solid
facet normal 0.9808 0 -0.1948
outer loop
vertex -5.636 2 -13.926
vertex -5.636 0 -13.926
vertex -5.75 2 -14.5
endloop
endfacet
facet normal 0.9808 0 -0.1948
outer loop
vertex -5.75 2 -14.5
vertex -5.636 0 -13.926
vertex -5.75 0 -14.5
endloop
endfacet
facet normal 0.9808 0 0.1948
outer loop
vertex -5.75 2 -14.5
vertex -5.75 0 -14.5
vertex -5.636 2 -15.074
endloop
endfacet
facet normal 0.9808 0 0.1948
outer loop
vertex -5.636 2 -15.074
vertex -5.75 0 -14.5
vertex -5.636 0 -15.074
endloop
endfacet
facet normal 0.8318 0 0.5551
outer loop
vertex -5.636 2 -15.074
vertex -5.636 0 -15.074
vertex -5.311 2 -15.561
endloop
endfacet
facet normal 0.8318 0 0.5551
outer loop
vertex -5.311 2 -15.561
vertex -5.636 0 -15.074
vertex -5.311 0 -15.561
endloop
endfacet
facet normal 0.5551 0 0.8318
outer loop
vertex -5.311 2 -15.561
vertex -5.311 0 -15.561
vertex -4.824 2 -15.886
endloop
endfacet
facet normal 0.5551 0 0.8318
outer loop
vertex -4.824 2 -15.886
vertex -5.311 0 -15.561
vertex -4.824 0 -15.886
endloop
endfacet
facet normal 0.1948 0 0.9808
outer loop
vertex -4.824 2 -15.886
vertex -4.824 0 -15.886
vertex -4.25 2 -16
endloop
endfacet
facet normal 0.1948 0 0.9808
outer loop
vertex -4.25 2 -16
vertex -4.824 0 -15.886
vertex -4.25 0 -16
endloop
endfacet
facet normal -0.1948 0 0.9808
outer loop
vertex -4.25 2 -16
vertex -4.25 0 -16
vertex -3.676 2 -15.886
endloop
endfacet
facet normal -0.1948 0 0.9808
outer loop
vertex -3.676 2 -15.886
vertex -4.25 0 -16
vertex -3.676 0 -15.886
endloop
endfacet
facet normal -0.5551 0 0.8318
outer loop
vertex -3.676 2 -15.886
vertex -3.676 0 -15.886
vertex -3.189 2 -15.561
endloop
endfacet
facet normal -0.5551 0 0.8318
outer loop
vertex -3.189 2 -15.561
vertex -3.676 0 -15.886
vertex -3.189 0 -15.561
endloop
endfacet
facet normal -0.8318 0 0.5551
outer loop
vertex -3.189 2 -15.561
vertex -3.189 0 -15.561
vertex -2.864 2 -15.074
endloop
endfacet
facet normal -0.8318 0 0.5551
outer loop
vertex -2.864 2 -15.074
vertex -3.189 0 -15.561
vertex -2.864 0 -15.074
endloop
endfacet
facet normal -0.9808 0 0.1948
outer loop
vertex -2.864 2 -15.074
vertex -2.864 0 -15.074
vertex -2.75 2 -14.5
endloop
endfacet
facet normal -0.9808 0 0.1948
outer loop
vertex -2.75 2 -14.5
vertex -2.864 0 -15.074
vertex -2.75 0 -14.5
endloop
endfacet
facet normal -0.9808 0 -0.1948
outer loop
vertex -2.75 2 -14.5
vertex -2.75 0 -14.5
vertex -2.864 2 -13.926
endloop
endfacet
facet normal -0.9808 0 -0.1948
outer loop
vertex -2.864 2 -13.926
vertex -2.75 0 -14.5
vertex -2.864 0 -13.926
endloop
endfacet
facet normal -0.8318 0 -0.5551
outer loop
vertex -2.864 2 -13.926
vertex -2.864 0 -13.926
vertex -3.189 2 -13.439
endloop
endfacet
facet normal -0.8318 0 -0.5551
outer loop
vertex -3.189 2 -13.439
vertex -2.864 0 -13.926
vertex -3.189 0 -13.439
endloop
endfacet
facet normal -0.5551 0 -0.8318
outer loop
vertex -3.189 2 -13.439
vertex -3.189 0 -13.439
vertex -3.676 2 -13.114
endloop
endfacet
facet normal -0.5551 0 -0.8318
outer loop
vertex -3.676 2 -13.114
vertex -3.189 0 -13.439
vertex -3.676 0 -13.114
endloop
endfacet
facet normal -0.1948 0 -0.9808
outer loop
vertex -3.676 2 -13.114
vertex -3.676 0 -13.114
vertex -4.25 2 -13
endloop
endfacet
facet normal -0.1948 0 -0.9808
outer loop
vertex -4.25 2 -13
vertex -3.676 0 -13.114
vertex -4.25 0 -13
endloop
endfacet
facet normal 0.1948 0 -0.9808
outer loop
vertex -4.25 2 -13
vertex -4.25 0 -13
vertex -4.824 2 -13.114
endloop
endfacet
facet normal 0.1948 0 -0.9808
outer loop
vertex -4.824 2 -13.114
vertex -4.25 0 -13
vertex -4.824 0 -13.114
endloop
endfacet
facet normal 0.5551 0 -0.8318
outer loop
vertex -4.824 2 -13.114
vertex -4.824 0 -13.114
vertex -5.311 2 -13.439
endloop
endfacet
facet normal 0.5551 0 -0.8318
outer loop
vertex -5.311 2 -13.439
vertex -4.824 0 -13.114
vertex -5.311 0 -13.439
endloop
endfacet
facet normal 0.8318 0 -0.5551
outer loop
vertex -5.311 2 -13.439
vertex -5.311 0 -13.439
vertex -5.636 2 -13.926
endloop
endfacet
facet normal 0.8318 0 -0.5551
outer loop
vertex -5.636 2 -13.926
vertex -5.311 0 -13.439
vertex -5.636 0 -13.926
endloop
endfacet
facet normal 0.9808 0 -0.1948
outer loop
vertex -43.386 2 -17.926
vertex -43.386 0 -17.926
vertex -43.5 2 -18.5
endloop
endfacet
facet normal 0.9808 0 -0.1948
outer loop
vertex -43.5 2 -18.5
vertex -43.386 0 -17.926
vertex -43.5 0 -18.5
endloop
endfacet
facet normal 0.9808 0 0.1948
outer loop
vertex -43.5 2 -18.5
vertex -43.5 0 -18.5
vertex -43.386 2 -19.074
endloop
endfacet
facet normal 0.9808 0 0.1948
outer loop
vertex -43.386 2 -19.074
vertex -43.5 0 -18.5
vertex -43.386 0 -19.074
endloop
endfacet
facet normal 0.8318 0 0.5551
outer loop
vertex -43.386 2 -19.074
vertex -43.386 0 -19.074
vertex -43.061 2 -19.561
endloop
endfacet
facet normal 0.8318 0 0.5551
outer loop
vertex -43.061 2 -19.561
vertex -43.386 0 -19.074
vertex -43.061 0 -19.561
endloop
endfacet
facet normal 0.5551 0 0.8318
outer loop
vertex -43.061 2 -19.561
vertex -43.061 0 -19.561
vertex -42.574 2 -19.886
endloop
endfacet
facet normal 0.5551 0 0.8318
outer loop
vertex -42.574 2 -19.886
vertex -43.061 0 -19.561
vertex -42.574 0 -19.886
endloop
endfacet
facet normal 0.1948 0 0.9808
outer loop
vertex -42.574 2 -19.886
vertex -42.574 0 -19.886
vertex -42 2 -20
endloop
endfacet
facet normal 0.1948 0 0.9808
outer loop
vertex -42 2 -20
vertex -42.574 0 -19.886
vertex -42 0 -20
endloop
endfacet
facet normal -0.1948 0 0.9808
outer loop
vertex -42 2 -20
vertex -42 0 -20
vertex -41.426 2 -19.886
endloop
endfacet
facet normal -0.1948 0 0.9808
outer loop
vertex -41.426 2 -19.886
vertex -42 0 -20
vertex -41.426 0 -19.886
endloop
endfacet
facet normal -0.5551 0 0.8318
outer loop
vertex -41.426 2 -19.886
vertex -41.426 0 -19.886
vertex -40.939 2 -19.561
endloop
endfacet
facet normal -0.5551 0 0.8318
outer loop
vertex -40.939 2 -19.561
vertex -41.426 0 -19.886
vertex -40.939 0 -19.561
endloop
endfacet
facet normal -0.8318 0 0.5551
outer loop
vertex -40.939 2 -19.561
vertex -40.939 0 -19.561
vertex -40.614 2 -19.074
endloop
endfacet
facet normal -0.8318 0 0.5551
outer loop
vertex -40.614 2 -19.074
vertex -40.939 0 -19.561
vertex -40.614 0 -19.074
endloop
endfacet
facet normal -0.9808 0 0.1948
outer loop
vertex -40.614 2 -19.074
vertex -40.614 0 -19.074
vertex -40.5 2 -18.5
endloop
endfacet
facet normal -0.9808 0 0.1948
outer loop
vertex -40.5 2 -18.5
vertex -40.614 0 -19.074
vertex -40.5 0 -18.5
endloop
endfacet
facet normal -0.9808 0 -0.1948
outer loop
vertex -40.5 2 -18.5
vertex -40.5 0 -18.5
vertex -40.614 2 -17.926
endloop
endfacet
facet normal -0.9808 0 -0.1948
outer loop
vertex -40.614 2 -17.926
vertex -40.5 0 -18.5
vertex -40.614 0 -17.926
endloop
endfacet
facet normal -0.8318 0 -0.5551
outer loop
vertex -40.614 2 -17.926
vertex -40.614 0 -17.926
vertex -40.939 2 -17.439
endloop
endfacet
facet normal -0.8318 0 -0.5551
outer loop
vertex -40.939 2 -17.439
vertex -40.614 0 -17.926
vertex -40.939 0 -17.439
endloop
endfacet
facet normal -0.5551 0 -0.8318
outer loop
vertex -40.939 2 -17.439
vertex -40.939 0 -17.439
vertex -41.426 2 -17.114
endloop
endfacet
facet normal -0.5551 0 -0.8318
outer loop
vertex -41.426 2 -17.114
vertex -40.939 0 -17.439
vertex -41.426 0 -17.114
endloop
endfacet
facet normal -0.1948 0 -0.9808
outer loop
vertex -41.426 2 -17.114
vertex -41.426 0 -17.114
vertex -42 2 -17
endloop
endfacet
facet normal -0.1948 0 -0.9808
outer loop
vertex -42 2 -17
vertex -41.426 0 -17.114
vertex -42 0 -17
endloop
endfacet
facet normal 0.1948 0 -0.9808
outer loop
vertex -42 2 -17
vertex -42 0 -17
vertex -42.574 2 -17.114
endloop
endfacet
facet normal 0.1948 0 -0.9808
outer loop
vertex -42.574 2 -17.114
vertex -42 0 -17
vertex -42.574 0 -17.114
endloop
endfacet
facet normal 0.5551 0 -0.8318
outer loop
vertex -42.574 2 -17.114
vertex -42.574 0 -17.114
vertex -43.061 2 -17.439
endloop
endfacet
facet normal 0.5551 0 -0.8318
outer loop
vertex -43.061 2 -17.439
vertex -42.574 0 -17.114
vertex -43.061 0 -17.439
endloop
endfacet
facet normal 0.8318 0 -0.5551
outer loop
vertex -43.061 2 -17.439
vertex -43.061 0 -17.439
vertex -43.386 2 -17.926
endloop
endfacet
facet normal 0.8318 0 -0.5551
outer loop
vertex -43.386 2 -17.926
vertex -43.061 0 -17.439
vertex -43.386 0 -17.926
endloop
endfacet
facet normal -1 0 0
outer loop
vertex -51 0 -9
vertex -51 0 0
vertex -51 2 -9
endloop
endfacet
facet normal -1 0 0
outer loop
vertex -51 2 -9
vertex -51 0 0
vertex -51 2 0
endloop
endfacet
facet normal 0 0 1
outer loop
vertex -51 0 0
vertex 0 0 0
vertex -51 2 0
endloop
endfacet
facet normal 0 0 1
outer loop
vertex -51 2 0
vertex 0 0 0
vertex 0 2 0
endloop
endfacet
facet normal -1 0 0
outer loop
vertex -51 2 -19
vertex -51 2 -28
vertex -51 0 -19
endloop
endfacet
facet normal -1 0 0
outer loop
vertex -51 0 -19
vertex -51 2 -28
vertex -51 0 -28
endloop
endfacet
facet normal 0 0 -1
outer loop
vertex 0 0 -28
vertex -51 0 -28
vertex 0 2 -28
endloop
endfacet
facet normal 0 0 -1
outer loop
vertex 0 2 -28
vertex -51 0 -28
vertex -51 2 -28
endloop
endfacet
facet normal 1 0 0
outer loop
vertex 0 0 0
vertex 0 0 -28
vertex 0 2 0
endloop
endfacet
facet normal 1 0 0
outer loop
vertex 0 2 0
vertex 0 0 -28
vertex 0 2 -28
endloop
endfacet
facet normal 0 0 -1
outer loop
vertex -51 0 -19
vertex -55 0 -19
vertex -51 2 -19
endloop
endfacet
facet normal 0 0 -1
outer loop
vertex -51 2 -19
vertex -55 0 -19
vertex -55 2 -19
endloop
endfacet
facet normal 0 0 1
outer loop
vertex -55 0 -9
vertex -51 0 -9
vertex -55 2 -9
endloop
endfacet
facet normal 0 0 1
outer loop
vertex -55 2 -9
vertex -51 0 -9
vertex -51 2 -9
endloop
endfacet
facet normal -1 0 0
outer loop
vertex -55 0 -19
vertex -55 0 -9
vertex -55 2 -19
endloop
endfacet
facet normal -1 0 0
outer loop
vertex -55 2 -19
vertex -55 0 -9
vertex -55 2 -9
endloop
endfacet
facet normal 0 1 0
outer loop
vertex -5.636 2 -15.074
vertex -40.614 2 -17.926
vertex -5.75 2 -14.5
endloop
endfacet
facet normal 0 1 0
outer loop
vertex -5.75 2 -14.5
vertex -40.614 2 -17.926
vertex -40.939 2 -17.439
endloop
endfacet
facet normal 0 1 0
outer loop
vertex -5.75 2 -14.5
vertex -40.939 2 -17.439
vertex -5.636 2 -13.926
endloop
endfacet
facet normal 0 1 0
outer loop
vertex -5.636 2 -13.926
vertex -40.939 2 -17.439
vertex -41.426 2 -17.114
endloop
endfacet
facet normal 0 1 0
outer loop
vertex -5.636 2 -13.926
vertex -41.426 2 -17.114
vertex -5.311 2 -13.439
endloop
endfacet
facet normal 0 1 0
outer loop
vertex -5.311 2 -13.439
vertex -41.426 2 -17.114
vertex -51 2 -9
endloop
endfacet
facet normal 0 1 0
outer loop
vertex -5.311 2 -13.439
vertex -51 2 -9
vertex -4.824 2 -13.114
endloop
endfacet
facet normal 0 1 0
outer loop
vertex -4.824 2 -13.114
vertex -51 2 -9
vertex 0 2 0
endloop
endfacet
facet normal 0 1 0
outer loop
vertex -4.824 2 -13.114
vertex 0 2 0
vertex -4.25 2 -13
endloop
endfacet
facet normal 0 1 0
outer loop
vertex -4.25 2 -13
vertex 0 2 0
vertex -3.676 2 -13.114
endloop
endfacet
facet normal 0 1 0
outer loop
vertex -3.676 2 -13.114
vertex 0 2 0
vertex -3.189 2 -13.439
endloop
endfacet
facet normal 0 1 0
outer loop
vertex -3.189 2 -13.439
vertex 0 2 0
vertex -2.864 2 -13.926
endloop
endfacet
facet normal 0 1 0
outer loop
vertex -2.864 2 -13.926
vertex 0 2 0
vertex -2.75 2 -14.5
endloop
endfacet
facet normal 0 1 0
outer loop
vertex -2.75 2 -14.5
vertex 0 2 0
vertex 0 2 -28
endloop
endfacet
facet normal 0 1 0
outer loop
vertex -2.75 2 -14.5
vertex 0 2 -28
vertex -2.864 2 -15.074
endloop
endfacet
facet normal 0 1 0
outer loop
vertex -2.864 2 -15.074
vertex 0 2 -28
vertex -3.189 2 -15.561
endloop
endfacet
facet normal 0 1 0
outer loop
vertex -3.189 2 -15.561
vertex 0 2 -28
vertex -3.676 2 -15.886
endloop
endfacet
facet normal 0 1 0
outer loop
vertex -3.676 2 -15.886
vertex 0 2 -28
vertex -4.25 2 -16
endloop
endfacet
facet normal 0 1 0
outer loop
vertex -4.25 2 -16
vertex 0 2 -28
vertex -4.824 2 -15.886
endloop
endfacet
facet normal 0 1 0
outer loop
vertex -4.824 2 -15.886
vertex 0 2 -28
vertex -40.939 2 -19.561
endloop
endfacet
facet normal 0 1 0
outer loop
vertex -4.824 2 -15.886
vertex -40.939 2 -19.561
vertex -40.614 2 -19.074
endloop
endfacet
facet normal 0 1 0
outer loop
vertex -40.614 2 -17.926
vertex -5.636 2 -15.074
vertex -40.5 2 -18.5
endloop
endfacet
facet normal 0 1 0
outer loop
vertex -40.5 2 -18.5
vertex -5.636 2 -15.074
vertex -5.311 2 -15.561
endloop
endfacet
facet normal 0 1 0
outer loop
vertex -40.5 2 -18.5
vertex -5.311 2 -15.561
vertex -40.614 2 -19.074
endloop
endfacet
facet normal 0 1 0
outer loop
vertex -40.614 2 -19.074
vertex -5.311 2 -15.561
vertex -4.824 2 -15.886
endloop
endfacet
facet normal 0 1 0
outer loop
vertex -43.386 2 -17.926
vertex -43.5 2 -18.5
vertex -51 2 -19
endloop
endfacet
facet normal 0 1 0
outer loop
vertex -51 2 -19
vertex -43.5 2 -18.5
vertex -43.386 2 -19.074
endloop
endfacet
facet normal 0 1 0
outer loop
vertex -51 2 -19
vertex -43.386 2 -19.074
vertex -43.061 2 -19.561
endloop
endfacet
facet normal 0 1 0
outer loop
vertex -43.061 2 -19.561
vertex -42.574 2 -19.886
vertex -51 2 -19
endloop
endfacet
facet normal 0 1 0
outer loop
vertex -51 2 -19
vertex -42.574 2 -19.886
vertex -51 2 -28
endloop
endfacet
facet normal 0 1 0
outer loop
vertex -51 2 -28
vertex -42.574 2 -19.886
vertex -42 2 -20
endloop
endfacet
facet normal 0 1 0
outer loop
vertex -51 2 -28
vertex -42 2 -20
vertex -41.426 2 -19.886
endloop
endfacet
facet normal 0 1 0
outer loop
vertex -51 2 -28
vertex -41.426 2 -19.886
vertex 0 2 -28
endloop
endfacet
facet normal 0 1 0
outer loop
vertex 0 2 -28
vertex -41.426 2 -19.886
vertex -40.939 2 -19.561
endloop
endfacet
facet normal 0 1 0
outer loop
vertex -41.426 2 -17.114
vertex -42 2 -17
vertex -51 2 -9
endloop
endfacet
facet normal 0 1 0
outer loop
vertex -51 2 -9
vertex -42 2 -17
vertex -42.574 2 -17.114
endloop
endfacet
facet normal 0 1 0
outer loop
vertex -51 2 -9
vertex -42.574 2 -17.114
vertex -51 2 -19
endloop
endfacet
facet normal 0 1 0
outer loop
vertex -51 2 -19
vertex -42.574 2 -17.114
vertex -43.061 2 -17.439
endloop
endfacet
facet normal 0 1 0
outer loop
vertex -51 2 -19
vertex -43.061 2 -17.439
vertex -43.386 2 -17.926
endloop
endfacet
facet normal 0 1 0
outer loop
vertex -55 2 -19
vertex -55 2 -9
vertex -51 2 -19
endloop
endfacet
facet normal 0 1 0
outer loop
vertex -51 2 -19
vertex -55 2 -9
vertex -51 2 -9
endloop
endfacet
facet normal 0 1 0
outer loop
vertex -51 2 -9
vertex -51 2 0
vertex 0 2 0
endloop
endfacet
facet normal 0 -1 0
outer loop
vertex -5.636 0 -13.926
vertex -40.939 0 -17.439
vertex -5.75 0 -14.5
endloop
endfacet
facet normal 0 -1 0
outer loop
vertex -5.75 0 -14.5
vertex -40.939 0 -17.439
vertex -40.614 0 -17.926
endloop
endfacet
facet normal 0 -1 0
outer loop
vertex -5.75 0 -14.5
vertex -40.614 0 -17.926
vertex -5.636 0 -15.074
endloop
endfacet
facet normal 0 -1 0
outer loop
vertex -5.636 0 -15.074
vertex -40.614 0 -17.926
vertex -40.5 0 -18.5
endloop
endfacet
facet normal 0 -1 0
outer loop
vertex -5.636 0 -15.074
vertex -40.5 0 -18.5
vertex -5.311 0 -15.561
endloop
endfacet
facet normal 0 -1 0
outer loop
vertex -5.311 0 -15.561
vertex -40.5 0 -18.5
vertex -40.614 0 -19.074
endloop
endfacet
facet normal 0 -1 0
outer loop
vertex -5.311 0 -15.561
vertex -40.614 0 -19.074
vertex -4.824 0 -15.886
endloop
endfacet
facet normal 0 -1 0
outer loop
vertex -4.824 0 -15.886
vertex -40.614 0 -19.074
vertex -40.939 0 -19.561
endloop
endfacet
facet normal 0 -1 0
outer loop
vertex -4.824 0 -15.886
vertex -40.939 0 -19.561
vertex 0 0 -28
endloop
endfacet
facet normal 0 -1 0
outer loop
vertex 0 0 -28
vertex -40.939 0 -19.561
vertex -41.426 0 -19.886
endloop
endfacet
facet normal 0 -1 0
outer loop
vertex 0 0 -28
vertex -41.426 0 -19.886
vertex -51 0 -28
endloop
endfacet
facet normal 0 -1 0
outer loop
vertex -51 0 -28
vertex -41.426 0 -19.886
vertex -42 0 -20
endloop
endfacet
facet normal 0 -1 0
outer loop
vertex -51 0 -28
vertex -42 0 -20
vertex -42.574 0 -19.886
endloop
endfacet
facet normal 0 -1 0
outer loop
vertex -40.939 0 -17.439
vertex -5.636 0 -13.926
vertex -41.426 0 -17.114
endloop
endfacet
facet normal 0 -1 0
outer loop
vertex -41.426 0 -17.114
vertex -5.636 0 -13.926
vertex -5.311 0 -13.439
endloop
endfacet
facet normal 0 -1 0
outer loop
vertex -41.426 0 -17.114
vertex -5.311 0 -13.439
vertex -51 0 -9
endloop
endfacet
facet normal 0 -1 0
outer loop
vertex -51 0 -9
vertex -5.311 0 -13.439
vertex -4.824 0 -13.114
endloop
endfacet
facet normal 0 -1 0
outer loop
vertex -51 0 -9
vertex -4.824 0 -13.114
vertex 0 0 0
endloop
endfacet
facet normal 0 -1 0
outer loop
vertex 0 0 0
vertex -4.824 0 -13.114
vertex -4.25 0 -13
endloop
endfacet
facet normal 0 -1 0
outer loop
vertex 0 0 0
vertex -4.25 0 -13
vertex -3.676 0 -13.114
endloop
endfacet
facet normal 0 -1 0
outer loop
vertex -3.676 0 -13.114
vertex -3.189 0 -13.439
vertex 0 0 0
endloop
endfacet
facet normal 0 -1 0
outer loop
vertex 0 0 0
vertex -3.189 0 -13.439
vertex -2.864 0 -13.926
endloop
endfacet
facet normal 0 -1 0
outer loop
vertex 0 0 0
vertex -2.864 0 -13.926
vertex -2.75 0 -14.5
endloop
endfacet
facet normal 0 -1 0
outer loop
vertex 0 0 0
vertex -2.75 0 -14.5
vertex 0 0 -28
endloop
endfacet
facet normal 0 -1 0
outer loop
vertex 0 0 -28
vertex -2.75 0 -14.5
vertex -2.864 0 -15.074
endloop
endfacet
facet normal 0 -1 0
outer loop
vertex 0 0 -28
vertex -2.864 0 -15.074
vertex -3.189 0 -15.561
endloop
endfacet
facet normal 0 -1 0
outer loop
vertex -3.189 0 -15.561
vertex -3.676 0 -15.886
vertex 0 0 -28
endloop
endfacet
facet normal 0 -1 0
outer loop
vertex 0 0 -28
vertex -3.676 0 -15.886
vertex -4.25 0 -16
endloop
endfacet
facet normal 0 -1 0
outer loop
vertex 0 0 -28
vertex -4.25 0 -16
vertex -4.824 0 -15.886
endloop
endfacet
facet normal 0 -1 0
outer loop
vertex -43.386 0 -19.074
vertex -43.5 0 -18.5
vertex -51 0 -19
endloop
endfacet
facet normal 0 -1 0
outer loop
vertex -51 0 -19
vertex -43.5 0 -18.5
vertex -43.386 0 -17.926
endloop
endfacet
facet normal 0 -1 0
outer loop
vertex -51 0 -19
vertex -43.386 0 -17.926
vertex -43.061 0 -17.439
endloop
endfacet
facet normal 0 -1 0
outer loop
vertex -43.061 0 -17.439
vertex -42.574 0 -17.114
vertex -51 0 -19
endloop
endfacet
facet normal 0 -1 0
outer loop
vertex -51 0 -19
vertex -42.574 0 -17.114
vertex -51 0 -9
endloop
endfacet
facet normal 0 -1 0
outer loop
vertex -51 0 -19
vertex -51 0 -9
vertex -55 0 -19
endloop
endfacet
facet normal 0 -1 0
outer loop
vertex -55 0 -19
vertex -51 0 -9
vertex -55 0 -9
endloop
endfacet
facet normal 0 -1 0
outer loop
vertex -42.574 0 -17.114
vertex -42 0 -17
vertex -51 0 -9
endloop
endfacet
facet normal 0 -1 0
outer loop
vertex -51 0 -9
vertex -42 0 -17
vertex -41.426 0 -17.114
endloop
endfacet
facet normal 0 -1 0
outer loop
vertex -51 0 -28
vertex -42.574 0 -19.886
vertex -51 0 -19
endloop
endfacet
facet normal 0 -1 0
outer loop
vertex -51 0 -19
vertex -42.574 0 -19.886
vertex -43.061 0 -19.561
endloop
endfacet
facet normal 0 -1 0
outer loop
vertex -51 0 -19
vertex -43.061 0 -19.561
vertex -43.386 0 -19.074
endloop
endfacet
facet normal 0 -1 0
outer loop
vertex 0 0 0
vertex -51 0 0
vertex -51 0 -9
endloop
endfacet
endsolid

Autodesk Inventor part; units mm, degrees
ref_plane "YZ Plane" through (0, 0, 0) normal (1, 0, 0) x (0, 1, 0)
ref_plane "XZ Plane" through (0, 0, 0) normal (0, 1, 0) x (-1, 0, 0)
ref_plane "XY Plane" through (0, 0, 0) normal (0, 0, 1) x (1, 0, 0)
sketch "Boceto1" plane through (0, 0, 0) normal (0, 1, 0) x (-1, 0, 0)
  line L0 (0, 0) -> (51, 0)
  line L1 (51, 0) -> (51, -28)
  line L2 (51, -28) -> (0, -28)
  line L3 (0, -28) -> (0, 0)
  line L4 (51, 0) -> (51, -18.5)
  line L5 (51, -18.5) -> (42, -18.5)
  circle A0 centre (42, -18.5) radius 1.5
  line L6 (0, 0) -> (0, -14.5)
  line L7 (0, -14.5) -> (4.25, -14.5)
  circle A1 centre (4.25, -14.5) radius 1.5
  line L8 (51, 0) -> (51, -14)
  line L9 (51, -14) -> (55, -14)
  line L10 (55, -14) -> (55, -9)
  line L11 (55, -9) -> (51, -9)
  line L12 (55, -14) -> (55, -19)
  line L13 (55, -19) -> (51, -19)
  dimension "d0" = 51
  dimension "d1" = 28
  dimension "d2" = 18.5
  dimension "d3" = 9
  dimension "d4" = 3
  dimension "d5" = 14.5
  dimension "d6" = 4.25
  dimension "d7" = 3
  dimension "d8" = 14
  dimension "d9" = 4
  dimension "d10" = 5
  dimension "d11" = 5
extrude "Extrusión1" add sketch "Boceto1" along normal blind 2
properties part number "arm_2_microservo_case"
